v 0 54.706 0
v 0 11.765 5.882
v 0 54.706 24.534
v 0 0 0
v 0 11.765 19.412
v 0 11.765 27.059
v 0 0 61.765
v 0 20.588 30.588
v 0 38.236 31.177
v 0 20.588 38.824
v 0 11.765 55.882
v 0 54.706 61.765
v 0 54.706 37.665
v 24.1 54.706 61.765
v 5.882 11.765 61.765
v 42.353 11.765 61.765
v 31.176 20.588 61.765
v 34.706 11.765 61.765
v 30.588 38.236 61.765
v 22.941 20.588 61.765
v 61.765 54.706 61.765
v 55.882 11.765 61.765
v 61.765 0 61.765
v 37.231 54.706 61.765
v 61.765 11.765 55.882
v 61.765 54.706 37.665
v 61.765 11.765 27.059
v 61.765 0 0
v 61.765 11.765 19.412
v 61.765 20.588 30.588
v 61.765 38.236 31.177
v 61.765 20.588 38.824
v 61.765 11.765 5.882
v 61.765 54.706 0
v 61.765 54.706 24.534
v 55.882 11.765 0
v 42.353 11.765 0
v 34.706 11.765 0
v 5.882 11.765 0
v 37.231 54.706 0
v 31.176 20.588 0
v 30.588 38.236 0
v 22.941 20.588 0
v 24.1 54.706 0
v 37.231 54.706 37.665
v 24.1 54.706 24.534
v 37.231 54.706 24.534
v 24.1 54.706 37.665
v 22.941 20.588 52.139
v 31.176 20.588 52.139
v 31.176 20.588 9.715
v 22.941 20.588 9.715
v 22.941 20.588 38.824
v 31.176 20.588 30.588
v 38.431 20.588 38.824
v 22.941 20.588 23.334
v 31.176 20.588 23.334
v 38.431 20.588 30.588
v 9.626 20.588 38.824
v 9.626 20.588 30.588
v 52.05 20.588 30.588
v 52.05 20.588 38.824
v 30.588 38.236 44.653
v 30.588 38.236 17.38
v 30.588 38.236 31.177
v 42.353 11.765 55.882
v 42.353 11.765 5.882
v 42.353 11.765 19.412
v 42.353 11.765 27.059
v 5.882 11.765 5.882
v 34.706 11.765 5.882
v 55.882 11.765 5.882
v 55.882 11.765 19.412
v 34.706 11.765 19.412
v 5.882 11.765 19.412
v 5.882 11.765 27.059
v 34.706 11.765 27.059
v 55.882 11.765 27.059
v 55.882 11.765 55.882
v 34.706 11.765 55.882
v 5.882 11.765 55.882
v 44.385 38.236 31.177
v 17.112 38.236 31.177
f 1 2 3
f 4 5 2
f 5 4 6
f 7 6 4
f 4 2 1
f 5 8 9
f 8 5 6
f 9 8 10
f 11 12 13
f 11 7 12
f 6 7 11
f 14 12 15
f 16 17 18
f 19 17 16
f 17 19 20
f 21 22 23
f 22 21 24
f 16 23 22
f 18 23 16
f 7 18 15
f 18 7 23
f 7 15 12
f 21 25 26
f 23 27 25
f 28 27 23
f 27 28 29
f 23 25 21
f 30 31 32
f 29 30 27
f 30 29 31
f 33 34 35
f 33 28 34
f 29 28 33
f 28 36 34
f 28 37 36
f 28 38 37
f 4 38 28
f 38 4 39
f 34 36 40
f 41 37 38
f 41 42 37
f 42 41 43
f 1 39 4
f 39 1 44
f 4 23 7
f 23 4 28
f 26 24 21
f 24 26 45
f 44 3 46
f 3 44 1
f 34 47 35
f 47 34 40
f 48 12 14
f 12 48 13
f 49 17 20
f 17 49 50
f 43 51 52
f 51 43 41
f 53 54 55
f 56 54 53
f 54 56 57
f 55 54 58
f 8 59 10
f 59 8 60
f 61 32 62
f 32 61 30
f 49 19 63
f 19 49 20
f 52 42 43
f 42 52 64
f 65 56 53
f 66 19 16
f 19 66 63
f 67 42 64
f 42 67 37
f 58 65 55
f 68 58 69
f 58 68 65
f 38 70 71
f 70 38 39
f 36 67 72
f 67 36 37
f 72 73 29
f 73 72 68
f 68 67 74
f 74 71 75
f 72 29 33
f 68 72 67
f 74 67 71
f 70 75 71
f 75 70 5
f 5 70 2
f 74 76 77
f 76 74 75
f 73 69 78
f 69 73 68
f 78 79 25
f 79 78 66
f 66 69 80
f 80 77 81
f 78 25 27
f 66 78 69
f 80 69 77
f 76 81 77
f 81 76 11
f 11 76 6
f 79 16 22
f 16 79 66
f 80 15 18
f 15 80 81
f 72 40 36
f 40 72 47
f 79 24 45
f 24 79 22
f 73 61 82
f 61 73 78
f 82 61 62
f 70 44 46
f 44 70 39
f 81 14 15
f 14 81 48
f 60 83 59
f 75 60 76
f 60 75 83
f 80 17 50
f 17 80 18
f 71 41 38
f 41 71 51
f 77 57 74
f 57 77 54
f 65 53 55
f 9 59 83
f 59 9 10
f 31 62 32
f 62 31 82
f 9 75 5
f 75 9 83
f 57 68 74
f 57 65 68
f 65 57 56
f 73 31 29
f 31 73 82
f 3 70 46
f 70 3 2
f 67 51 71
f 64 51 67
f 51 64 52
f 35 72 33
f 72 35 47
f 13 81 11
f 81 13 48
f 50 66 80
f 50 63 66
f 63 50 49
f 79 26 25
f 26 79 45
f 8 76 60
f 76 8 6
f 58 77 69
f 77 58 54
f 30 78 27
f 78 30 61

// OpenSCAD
// Adobe logo phone stand.

logoWidth = 50;
logoHeight = 0.85883 * logoWidth;
logoOffset = logoWidth + 2;

cubeBase = 1.2353 * logoWidth;
cubeHeight = 1.09413 * logoWidth;


logo();

module logo() {
  difference() {
    cube([cubeBase, cubeHeight, cubeBase]);
    translate([(cubeBase - logoWidth)/2, cubeHeight - logoHeight, -logoOffset/2])
      A3D();
    translate([-logoOffset/2, cubeHeight - logoHeight, logoWidth + (cubeBase - logoWidth)/2])
      rotate([0, 90, 0])
        A3D();
    }
}

module A3D() {
  linear_extrude(cubeBase + logoOffset) {
    polygon(points=[[0,0],
                    [0.57647 * logoWidth, 0],
                    [0.50588 * logoWidth, 0.17647 * logoWidth],
                    [0.34117 * logoWidth, 0.17647 * logoWidth],
                    [0.49411 * logoWidth, 0.52941 * logoWidth],  // A inner top
                    [0.72941 * logoWidth, 0],
                    [logoWidth, 0],  // bottom right corner
                    [0.49411 * logoWidth, 1.16470 * logoWidth]

    ]);
  }

}
